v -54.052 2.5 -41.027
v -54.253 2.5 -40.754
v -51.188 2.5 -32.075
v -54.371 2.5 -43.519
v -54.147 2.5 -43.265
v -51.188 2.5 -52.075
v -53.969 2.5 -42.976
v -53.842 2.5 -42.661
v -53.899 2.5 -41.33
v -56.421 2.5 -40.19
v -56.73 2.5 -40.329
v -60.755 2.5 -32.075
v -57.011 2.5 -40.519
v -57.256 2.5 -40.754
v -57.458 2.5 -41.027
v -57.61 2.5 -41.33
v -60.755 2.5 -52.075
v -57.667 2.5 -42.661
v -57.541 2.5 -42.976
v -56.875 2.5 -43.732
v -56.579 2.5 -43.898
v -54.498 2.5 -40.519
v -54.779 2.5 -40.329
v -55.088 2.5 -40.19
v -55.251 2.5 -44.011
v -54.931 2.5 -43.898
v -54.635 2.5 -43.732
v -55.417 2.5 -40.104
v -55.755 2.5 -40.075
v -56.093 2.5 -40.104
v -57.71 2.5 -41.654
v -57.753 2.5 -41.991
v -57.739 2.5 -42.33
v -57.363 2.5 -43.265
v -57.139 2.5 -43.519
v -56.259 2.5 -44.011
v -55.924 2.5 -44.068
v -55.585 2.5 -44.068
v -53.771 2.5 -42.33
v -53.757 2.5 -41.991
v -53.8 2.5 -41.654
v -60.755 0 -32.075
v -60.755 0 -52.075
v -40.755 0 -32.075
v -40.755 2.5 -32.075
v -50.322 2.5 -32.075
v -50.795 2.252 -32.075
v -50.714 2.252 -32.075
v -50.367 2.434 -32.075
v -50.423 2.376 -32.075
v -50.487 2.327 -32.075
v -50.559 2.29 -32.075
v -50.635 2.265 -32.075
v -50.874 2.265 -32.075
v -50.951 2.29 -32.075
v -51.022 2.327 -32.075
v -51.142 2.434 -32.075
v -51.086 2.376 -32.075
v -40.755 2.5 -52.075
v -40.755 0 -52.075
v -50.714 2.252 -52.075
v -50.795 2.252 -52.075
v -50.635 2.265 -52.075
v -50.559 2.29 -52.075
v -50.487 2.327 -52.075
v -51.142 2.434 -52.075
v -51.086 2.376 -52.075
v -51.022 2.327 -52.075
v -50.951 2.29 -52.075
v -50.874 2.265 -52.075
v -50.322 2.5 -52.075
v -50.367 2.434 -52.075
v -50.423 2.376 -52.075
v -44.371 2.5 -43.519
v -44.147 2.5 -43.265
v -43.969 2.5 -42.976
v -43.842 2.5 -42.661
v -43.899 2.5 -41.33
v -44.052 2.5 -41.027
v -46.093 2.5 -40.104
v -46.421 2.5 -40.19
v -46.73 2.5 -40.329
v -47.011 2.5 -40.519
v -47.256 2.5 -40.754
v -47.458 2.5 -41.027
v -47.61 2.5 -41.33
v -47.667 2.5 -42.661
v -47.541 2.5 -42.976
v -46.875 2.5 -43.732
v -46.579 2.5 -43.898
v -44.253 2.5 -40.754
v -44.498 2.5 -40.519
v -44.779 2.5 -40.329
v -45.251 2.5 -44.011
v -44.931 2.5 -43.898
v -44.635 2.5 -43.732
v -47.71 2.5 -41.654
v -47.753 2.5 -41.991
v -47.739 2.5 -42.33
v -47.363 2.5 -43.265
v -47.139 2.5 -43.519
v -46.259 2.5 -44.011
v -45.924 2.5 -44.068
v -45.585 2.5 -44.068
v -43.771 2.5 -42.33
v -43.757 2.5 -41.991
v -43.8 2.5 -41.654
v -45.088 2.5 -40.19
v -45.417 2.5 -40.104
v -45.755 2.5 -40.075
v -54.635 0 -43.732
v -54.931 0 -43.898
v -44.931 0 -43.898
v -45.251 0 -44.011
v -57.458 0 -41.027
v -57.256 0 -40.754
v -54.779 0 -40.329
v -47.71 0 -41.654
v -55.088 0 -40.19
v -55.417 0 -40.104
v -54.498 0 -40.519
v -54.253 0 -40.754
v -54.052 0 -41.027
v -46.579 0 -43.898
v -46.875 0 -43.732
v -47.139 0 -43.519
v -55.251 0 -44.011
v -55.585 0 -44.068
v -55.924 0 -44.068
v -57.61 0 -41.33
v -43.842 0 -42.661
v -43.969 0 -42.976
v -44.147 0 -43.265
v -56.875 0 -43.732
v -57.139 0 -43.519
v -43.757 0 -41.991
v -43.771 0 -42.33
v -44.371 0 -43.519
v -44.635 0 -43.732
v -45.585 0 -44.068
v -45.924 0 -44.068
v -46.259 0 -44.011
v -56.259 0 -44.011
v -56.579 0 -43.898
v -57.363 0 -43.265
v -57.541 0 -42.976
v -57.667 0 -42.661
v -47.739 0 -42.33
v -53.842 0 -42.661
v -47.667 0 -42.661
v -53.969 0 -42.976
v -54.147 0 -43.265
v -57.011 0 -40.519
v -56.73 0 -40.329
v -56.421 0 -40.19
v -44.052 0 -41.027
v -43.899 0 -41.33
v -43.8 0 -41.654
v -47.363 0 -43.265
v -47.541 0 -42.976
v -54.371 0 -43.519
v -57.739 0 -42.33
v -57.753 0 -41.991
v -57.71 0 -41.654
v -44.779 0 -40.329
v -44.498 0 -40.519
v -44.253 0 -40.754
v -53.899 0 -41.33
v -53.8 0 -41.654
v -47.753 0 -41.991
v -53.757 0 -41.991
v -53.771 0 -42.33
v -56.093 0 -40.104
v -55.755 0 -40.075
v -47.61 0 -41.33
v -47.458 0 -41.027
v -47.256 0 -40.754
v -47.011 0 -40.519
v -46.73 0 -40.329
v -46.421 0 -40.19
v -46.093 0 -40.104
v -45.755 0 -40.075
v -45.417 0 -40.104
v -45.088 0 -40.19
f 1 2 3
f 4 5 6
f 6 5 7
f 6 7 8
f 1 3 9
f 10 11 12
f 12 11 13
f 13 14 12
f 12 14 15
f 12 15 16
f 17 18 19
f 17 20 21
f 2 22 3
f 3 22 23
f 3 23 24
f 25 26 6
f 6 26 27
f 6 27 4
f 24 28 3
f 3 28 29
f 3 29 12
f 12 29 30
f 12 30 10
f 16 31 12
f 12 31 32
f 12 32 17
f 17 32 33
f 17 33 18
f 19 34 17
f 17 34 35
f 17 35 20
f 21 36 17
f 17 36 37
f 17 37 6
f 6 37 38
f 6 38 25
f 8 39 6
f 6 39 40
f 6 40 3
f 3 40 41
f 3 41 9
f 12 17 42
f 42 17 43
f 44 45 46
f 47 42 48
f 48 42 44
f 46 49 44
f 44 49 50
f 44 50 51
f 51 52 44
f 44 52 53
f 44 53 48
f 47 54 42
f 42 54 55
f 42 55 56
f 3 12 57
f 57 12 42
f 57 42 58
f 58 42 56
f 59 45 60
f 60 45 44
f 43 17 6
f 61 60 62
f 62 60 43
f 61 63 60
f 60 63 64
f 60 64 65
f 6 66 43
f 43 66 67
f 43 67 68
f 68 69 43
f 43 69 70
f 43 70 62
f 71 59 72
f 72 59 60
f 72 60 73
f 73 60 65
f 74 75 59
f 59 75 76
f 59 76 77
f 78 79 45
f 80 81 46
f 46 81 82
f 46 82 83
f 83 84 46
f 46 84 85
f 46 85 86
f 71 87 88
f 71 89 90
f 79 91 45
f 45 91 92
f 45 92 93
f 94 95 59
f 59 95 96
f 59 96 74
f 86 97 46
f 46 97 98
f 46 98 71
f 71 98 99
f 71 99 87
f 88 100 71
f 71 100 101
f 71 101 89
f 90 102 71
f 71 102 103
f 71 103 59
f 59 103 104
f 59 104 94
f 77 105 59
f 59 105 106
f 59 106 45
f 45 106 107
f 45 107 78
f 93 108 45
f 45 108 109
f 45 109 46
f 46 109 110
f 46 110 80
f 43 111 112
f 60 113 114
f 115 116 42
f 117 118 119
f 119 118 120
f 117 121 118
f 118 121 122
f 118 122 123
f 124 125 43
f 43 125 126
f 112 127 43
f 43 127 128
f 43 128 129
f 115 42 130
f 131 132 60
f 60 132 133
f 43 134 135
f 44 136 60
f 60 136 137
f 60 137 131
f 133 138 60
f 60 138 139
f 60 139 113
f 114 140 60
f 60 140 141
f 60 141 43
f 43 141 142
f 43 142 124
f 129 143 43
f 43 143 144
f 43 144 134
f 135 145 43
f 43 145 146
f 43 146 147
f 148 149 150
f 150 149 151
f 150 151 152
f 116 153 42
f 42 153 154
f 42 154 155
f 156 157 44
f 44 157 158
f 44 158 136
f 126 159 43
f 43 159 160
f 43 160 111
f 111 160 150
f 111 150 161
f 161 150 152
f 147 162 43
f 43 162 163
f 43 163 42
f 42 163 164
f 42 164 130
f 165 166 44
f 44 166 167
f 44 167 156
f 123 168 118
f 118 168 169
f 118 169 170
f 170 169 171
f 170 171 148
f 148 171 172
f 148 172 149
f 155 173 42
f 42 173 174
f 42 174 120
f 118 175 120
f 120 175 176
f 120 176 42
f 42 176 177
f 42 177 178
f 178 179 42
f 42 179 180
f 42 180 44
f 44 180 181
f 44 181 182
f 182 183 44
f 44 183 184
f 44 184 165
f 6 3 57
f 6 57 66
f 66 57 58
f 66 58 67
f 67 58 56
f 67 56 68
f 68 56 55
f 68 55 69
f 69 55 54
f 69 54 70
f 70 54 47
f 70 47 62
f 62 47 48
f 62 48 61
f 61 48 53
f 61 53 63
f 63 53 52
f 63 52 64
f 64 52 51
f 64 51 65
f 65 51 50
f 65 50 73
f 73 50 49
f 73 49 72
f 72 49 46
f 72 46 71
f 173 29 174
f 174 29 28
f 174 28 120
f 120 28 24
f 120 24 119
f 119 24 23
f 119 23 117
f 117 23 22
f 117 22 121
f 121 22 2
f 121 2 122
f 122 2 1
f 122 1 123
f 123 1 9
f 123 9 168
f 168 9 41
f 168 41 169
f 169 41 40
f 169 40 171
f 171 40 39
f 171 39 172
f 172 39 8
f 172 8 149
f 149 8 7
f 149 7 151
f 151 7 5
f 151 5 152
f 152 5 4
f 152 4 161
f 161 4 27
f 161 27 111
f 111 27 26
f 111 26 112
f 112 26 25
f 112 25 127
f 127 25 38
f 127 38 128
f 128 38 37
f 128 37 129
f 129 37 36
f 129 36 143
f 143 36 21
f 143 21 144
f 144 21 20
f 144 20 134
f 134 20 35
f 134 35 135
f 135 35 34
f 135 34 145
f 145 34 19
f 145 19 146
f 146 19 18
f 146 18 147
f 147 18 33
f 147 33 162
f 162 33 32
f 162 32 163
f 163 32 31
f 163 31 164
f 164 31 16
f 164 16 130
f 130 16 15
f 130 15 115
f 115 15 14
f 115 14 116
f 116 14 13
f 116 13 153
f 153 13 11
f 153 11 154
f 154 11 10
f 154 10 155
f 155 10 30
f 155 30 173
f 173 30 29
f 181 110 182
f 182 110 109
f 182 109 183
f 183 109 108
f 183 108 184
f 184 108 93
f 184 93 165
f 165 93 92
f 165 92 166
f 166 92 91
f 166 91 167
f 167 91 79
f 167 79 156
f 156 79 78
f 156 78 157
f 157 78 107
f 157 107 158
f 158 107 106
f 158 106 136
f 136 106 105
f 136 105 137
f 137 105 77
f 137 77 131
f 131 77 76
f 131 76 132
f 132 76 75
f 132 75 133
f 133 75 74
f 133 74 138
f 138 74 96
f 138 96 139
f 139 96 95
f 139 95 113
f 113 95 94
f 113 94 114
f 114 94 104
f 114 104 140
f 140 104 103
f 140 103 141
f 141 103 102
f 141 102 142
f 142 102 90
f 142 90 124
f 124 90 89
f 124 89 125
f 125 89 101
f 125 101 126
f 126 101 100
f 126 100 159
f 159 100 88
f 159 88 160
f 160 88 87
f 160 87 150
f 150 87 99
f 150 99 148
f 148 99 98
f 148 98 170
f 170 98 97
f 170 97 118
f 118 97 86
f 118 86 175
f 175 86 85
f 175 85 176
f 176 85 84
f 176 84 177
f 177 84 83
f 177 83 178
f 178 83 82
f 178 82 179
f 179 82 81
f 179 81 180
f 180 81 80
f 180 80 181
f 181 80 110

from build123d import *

# Parameters (mm, degrees)
SKETCH1_W           = 20
SKETCH1_H           = 20
BOSS_EXTRUDE1_DEPTH = 2.5
SKETCH2_R           = 0.5
CUT_EXTRUDE1_DEPTH  = 21
SKETCH3_R           = 2
CUT_EXTRUDE2_DEPTH  = 3.5


with BuildPart() as part:
    # Sketch1 → Boss-Extrude1 (new body)
    with BuildSketch(Plane(origin=(0, 0, 0), x_dir=(1, 0, 0), z_dir=(0, 1, 0))):
        with Locations((-50.754716981, 42.075471698)):
            Rectangle(SKETCH1_W, SKETCH1_H)
    extrude(amount=BOSS_EXTRUDE1_DEPTH)

    # Sketch2 → Cut-Extrude1 (cut, through all)
    with BuildSketch(Plane.XY.offset(-32.075471698)):
        with Locations((-50.754716981, 2.75)):
            Circle(SKETCH2_R)
    extrude(amount=-CUT_EXTRUDE1_DEPTH, mode=Mode.SUBTRACT)

    # Sketch3 → Cut-Extrude2 (cut, through all)
    with BuildSketch(Plane(origin=(0, 2.5, 0), x_dir=(1, 0, 0), z_dir=(0, 1, 0))):
        with Locations((-55.754716981, 42.075471698)):
            Circle(SKETCH3_R)
        with Locations((-45.754716981, 42.075471698)):
            Circle(SKETCH3_R)
    extrude(amount=-CUT_EXTRUDE2_DEPTH, mode=Mode.SUBTRACT)


solid = part.part
